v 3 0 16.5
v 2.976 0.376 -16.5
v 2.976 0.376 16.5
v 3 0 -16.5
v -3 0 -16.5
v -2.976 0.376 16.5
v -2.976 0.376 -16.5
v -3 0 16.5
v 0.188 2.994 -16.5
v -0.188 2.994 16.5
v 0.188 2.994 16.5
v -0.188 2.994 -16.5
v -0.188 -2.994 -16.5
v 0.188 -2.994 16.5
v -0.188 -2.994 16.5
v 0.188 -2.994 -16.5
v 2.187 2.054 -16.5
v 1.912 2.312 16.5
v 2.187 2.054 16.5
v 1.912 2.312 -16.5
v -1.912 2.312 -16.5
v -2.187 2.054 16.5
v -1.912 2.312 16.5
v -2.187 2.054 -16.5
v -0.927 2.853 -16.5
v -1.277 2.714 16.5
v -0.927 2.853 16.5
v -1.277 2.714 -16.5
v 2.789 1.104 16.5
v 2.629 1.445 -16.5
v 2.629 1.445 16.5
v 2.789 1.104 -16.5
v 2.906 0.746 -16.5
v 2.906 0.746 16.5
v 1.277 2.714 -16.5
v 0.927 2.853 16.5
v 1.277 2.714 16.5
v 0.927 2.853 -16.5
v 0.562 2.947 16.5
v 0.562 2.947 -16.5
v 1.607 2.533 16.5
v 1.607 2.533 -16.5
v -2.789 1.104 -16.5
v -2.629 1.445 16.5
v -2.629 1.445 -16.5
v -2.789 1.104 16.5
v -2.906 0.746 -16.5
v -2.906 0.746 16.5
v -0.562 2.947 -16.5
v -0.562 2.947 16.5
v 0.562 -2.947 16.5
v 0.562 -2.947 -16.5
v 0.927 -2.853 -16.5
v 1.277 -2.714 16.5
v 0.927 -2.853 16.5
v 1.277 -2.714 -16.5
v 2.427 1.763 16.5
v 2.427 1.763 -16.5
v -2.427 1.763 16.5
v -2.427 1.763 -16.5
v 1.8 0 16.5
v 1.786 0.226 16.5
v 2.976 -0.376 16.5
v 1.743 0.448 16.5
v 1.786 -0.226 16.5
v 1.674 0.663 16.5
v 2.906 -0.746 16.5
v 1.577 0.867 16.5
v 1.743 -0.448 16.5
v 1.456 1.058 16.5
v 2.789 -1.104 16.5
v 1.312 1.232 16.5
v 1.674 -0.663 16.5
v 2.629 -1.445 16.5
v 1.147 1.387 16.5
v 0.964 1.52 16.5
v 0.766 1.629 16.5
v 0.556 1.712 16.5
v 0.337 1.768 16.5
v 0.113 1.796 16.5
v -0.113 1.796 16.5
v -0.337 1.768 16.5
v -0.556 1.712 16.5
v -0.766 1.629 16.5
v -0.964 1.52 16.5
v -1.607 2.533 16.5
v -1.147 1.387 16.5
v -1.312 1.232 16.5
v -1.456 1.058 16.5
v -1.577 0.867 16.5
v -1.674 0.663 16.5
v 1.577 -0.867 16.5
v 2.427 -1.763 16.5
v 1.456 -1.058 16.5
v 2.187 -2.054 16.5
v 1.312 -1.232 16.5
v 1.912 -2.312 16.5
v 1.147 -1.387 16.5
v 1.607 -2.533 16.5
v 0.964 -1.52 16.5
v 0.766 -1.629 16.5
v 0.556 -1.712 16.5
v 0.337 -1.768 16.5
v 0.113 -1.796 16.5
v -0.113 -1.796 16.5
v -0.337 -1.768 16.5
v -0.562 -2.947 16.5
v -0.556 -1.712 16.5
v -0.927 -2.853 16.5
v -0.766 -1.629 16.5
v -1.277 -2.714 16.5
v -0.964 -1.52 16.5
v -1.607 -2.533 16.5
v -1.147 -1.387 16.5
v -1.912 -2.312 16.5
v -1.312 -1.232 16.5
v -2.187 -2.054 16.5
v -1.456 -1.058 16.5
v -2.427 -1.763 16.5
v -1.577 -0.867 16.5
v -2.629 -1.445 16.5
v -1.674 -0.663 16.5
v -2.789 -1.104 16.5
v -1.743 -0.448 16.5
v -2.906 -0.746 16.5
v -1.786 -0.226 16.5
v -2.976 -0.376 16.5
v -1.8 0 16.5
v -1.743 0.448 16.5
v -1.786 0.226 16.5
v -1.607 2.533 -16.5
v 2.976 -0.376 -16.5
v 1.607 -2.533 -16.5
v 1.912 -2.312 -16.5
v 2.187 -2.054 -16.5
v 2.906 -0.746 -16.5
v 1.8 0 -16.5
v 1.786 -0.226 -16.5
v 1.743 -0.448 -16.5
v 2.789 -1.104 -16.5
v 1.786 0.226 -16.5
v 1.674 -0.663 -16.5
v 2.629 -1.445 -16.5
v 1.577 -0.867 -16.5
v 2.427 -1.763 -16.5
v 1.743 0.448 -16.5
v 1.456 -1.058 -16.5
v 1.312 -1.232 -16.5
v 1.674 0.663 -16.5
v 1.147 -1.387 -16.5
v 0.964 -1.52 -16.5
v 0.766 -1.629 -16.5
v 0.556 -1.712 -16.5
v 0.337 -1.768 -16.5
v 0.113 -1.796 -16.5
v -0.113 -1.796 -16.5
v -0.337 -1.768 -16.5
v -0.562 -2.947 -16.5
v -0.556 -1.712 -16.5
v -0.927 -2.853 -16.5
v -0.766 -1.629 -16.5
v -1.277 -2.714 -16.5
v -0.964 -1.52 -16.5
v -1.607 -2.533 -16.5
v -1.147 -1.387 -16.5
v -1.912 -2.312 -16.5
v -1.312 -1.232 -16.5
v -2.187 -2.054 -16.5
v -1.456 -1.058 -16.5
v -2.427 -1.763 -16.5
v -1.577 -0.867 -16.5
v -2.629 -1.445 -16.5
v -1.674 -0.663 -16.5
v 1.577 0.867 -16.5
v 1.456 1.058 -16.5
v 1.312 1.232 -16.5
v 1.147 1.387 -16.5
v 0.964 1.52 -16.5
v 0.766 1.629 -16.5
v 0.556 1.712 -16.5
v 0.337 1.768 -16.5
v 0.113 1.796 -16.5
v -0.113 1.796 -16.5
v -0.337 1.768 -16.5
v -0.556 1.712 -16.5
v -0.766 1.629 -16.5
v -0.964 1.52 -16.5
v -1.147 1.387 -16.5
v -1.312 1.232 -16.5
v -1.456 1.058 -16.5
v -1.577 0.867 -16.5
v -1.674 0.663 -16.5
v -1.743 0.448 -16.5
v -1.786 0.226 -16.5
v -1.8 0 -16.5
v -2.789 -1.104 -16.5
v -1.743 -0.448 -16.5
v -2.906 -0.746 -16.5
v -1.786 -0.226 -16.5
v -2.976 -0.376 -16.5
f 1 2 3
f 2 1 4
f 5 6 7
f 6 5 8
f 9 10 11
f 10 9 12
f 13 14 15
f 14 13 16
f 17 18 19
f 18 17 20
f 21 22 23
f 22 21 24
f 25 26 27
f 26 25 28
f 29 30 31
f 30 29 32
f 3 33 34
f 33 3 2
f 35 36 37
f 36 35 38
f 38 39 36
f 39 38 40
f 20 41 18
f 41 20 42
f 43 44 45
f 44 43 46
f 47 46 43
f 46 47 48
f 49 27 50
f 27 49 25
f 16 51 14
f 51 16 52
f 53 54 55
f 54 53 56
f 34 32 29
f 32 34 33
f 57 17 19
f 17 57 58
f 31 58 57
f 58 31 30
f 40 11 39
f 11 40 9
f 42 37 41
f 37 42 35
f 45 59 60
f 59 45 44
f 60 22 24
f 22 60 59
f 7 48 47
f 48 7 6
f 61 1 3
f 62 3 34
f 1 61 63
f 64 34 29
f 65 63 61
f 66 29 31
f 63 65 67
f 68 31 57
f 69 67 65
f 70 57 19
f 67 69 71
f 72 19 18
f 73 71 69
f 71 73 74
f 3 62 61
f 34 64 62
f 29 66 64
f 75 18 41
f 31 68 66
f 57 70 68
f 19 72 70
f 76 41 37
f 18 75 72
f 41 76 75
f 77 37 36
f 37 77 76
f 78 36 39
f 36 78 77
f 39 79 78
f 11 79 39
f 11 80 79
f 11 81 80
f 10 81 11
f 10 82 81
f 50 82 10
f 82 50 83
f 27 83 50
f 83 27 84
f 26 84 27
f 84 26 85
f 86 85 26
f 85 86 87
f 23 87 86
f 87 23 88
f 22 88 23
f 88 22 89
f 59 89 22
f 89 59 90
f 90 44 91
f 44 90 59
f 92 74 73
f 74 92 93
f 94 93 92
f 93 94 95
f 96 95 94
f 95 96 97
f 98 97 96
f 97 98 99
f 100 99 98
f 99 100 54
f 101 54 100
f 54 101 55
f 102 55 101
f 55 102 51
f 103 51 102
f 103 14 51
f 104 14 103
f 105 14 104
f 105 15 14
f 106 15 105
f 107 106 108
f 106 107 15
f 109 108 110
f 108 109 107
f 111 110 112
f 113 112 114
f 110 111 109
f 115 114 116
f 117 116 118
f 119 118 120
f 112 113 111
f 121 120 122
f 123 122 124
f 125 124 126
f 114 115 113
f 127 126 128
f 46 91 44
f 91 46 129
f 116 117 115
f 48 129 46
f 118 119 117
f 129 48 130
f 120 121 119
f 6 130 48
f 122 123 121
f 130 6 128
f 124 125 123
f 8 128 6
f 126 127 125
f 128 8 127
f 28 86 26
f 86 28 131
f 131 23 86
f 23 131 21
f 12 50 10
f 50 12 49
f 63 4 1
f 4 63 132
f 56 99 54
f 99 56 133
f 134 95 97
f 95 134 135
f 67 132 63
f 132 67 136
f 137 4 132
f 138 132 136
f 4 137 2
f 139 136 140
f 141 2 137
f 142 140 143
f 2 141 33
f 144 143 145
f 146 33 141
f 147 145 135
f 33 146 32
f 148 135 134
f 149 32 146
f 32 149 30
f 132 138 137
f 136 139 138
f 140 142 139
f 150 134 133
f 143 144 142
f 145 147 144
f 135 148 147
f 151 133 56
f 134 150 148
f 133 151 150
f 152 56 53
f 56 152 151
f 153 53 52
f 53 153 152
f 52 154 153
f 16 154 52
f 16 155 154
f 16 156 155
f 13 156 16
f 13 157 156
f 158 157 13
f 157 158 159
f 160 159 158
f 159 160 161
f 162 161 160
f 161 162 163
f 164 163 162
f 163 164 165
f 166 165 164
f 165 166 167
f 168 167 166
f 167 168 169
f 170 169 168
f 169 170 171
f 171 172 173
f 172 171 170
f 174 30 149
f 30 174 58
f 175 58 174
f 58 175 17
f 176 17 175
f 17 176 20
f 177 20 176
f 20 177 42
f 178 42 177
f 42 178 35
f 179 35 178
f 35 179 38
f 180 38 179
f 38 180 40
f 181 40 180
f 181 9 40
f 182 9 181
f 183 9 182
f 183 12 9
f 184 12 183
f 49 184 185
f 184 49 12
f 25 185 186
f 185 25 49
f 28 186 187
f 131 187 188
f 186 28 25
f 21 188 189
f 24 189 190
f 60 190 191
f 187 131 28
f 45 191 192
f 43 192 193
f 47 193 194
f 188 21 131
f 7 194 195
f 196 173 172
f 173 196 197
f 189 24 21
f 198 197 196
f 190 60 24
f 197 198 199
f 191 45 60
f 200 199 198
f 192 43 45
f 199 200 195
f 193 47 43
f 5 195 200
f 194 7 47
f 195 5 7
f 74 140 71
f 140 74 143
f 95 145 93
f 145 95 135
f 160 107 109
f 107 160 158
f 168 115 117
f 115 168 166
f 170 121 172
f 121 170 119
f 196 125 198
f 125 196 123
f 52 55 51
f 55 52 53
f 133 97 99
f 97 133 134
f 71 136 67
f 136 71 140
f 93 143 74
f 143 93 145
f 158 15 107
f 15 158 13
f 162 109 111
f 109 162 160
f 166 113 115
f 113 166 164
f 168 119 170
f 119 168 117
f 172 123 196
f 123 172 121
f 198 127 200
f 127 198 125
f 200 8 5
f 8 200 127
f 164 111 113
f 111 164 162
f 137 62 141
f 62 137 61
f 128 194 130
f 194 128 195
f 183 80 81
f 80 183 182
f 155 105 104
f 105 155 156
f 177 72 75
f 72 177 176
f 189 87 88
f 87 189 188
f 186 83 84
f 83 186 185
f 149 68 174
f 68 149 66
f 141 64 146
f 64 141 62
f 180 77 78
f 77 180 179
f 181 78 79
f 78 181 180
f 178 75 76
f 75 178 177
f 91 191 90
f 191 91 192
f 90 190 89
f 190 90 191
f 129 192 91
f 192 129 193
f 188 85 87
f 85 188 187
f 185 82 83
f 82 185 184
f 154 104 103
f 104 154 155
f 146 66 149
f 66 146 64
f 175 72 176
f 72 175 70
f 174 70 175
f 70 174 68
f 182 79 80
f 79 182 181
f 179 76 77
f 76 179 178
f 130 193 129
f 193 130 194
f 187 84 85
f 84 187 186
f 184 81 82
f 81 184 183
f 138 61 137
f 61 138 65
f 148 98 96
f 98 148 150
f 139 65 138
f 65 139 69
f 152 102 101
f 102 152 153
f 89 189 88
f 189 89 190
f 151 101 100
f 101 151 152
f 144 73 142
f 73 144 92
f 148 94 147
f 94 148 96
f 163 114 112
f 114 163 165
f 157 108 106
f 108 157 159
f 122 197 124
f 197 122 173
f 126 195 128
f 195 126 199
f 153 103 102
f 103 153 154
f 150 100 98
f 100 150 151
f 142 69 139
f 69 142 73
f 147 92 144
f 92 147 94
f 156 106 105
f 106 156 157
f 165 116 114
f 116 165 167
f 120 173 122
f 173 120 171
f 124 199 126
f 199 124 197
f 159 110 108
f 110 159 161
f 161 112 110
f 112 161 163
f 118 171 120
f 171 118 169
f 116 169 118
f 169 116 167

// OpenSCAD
$fn = 50;


difference() {
	union() {
		translate(v = [0, 0, -16.5000000000]) {
			cylinder(h = 33, r = 3.0000000000);
		}
	}
	union() {
		translate(v = [0, 0, -100.0000000000]) {
			cylinder(h = 200, r = 1.8000000000);
		}
	}
}
